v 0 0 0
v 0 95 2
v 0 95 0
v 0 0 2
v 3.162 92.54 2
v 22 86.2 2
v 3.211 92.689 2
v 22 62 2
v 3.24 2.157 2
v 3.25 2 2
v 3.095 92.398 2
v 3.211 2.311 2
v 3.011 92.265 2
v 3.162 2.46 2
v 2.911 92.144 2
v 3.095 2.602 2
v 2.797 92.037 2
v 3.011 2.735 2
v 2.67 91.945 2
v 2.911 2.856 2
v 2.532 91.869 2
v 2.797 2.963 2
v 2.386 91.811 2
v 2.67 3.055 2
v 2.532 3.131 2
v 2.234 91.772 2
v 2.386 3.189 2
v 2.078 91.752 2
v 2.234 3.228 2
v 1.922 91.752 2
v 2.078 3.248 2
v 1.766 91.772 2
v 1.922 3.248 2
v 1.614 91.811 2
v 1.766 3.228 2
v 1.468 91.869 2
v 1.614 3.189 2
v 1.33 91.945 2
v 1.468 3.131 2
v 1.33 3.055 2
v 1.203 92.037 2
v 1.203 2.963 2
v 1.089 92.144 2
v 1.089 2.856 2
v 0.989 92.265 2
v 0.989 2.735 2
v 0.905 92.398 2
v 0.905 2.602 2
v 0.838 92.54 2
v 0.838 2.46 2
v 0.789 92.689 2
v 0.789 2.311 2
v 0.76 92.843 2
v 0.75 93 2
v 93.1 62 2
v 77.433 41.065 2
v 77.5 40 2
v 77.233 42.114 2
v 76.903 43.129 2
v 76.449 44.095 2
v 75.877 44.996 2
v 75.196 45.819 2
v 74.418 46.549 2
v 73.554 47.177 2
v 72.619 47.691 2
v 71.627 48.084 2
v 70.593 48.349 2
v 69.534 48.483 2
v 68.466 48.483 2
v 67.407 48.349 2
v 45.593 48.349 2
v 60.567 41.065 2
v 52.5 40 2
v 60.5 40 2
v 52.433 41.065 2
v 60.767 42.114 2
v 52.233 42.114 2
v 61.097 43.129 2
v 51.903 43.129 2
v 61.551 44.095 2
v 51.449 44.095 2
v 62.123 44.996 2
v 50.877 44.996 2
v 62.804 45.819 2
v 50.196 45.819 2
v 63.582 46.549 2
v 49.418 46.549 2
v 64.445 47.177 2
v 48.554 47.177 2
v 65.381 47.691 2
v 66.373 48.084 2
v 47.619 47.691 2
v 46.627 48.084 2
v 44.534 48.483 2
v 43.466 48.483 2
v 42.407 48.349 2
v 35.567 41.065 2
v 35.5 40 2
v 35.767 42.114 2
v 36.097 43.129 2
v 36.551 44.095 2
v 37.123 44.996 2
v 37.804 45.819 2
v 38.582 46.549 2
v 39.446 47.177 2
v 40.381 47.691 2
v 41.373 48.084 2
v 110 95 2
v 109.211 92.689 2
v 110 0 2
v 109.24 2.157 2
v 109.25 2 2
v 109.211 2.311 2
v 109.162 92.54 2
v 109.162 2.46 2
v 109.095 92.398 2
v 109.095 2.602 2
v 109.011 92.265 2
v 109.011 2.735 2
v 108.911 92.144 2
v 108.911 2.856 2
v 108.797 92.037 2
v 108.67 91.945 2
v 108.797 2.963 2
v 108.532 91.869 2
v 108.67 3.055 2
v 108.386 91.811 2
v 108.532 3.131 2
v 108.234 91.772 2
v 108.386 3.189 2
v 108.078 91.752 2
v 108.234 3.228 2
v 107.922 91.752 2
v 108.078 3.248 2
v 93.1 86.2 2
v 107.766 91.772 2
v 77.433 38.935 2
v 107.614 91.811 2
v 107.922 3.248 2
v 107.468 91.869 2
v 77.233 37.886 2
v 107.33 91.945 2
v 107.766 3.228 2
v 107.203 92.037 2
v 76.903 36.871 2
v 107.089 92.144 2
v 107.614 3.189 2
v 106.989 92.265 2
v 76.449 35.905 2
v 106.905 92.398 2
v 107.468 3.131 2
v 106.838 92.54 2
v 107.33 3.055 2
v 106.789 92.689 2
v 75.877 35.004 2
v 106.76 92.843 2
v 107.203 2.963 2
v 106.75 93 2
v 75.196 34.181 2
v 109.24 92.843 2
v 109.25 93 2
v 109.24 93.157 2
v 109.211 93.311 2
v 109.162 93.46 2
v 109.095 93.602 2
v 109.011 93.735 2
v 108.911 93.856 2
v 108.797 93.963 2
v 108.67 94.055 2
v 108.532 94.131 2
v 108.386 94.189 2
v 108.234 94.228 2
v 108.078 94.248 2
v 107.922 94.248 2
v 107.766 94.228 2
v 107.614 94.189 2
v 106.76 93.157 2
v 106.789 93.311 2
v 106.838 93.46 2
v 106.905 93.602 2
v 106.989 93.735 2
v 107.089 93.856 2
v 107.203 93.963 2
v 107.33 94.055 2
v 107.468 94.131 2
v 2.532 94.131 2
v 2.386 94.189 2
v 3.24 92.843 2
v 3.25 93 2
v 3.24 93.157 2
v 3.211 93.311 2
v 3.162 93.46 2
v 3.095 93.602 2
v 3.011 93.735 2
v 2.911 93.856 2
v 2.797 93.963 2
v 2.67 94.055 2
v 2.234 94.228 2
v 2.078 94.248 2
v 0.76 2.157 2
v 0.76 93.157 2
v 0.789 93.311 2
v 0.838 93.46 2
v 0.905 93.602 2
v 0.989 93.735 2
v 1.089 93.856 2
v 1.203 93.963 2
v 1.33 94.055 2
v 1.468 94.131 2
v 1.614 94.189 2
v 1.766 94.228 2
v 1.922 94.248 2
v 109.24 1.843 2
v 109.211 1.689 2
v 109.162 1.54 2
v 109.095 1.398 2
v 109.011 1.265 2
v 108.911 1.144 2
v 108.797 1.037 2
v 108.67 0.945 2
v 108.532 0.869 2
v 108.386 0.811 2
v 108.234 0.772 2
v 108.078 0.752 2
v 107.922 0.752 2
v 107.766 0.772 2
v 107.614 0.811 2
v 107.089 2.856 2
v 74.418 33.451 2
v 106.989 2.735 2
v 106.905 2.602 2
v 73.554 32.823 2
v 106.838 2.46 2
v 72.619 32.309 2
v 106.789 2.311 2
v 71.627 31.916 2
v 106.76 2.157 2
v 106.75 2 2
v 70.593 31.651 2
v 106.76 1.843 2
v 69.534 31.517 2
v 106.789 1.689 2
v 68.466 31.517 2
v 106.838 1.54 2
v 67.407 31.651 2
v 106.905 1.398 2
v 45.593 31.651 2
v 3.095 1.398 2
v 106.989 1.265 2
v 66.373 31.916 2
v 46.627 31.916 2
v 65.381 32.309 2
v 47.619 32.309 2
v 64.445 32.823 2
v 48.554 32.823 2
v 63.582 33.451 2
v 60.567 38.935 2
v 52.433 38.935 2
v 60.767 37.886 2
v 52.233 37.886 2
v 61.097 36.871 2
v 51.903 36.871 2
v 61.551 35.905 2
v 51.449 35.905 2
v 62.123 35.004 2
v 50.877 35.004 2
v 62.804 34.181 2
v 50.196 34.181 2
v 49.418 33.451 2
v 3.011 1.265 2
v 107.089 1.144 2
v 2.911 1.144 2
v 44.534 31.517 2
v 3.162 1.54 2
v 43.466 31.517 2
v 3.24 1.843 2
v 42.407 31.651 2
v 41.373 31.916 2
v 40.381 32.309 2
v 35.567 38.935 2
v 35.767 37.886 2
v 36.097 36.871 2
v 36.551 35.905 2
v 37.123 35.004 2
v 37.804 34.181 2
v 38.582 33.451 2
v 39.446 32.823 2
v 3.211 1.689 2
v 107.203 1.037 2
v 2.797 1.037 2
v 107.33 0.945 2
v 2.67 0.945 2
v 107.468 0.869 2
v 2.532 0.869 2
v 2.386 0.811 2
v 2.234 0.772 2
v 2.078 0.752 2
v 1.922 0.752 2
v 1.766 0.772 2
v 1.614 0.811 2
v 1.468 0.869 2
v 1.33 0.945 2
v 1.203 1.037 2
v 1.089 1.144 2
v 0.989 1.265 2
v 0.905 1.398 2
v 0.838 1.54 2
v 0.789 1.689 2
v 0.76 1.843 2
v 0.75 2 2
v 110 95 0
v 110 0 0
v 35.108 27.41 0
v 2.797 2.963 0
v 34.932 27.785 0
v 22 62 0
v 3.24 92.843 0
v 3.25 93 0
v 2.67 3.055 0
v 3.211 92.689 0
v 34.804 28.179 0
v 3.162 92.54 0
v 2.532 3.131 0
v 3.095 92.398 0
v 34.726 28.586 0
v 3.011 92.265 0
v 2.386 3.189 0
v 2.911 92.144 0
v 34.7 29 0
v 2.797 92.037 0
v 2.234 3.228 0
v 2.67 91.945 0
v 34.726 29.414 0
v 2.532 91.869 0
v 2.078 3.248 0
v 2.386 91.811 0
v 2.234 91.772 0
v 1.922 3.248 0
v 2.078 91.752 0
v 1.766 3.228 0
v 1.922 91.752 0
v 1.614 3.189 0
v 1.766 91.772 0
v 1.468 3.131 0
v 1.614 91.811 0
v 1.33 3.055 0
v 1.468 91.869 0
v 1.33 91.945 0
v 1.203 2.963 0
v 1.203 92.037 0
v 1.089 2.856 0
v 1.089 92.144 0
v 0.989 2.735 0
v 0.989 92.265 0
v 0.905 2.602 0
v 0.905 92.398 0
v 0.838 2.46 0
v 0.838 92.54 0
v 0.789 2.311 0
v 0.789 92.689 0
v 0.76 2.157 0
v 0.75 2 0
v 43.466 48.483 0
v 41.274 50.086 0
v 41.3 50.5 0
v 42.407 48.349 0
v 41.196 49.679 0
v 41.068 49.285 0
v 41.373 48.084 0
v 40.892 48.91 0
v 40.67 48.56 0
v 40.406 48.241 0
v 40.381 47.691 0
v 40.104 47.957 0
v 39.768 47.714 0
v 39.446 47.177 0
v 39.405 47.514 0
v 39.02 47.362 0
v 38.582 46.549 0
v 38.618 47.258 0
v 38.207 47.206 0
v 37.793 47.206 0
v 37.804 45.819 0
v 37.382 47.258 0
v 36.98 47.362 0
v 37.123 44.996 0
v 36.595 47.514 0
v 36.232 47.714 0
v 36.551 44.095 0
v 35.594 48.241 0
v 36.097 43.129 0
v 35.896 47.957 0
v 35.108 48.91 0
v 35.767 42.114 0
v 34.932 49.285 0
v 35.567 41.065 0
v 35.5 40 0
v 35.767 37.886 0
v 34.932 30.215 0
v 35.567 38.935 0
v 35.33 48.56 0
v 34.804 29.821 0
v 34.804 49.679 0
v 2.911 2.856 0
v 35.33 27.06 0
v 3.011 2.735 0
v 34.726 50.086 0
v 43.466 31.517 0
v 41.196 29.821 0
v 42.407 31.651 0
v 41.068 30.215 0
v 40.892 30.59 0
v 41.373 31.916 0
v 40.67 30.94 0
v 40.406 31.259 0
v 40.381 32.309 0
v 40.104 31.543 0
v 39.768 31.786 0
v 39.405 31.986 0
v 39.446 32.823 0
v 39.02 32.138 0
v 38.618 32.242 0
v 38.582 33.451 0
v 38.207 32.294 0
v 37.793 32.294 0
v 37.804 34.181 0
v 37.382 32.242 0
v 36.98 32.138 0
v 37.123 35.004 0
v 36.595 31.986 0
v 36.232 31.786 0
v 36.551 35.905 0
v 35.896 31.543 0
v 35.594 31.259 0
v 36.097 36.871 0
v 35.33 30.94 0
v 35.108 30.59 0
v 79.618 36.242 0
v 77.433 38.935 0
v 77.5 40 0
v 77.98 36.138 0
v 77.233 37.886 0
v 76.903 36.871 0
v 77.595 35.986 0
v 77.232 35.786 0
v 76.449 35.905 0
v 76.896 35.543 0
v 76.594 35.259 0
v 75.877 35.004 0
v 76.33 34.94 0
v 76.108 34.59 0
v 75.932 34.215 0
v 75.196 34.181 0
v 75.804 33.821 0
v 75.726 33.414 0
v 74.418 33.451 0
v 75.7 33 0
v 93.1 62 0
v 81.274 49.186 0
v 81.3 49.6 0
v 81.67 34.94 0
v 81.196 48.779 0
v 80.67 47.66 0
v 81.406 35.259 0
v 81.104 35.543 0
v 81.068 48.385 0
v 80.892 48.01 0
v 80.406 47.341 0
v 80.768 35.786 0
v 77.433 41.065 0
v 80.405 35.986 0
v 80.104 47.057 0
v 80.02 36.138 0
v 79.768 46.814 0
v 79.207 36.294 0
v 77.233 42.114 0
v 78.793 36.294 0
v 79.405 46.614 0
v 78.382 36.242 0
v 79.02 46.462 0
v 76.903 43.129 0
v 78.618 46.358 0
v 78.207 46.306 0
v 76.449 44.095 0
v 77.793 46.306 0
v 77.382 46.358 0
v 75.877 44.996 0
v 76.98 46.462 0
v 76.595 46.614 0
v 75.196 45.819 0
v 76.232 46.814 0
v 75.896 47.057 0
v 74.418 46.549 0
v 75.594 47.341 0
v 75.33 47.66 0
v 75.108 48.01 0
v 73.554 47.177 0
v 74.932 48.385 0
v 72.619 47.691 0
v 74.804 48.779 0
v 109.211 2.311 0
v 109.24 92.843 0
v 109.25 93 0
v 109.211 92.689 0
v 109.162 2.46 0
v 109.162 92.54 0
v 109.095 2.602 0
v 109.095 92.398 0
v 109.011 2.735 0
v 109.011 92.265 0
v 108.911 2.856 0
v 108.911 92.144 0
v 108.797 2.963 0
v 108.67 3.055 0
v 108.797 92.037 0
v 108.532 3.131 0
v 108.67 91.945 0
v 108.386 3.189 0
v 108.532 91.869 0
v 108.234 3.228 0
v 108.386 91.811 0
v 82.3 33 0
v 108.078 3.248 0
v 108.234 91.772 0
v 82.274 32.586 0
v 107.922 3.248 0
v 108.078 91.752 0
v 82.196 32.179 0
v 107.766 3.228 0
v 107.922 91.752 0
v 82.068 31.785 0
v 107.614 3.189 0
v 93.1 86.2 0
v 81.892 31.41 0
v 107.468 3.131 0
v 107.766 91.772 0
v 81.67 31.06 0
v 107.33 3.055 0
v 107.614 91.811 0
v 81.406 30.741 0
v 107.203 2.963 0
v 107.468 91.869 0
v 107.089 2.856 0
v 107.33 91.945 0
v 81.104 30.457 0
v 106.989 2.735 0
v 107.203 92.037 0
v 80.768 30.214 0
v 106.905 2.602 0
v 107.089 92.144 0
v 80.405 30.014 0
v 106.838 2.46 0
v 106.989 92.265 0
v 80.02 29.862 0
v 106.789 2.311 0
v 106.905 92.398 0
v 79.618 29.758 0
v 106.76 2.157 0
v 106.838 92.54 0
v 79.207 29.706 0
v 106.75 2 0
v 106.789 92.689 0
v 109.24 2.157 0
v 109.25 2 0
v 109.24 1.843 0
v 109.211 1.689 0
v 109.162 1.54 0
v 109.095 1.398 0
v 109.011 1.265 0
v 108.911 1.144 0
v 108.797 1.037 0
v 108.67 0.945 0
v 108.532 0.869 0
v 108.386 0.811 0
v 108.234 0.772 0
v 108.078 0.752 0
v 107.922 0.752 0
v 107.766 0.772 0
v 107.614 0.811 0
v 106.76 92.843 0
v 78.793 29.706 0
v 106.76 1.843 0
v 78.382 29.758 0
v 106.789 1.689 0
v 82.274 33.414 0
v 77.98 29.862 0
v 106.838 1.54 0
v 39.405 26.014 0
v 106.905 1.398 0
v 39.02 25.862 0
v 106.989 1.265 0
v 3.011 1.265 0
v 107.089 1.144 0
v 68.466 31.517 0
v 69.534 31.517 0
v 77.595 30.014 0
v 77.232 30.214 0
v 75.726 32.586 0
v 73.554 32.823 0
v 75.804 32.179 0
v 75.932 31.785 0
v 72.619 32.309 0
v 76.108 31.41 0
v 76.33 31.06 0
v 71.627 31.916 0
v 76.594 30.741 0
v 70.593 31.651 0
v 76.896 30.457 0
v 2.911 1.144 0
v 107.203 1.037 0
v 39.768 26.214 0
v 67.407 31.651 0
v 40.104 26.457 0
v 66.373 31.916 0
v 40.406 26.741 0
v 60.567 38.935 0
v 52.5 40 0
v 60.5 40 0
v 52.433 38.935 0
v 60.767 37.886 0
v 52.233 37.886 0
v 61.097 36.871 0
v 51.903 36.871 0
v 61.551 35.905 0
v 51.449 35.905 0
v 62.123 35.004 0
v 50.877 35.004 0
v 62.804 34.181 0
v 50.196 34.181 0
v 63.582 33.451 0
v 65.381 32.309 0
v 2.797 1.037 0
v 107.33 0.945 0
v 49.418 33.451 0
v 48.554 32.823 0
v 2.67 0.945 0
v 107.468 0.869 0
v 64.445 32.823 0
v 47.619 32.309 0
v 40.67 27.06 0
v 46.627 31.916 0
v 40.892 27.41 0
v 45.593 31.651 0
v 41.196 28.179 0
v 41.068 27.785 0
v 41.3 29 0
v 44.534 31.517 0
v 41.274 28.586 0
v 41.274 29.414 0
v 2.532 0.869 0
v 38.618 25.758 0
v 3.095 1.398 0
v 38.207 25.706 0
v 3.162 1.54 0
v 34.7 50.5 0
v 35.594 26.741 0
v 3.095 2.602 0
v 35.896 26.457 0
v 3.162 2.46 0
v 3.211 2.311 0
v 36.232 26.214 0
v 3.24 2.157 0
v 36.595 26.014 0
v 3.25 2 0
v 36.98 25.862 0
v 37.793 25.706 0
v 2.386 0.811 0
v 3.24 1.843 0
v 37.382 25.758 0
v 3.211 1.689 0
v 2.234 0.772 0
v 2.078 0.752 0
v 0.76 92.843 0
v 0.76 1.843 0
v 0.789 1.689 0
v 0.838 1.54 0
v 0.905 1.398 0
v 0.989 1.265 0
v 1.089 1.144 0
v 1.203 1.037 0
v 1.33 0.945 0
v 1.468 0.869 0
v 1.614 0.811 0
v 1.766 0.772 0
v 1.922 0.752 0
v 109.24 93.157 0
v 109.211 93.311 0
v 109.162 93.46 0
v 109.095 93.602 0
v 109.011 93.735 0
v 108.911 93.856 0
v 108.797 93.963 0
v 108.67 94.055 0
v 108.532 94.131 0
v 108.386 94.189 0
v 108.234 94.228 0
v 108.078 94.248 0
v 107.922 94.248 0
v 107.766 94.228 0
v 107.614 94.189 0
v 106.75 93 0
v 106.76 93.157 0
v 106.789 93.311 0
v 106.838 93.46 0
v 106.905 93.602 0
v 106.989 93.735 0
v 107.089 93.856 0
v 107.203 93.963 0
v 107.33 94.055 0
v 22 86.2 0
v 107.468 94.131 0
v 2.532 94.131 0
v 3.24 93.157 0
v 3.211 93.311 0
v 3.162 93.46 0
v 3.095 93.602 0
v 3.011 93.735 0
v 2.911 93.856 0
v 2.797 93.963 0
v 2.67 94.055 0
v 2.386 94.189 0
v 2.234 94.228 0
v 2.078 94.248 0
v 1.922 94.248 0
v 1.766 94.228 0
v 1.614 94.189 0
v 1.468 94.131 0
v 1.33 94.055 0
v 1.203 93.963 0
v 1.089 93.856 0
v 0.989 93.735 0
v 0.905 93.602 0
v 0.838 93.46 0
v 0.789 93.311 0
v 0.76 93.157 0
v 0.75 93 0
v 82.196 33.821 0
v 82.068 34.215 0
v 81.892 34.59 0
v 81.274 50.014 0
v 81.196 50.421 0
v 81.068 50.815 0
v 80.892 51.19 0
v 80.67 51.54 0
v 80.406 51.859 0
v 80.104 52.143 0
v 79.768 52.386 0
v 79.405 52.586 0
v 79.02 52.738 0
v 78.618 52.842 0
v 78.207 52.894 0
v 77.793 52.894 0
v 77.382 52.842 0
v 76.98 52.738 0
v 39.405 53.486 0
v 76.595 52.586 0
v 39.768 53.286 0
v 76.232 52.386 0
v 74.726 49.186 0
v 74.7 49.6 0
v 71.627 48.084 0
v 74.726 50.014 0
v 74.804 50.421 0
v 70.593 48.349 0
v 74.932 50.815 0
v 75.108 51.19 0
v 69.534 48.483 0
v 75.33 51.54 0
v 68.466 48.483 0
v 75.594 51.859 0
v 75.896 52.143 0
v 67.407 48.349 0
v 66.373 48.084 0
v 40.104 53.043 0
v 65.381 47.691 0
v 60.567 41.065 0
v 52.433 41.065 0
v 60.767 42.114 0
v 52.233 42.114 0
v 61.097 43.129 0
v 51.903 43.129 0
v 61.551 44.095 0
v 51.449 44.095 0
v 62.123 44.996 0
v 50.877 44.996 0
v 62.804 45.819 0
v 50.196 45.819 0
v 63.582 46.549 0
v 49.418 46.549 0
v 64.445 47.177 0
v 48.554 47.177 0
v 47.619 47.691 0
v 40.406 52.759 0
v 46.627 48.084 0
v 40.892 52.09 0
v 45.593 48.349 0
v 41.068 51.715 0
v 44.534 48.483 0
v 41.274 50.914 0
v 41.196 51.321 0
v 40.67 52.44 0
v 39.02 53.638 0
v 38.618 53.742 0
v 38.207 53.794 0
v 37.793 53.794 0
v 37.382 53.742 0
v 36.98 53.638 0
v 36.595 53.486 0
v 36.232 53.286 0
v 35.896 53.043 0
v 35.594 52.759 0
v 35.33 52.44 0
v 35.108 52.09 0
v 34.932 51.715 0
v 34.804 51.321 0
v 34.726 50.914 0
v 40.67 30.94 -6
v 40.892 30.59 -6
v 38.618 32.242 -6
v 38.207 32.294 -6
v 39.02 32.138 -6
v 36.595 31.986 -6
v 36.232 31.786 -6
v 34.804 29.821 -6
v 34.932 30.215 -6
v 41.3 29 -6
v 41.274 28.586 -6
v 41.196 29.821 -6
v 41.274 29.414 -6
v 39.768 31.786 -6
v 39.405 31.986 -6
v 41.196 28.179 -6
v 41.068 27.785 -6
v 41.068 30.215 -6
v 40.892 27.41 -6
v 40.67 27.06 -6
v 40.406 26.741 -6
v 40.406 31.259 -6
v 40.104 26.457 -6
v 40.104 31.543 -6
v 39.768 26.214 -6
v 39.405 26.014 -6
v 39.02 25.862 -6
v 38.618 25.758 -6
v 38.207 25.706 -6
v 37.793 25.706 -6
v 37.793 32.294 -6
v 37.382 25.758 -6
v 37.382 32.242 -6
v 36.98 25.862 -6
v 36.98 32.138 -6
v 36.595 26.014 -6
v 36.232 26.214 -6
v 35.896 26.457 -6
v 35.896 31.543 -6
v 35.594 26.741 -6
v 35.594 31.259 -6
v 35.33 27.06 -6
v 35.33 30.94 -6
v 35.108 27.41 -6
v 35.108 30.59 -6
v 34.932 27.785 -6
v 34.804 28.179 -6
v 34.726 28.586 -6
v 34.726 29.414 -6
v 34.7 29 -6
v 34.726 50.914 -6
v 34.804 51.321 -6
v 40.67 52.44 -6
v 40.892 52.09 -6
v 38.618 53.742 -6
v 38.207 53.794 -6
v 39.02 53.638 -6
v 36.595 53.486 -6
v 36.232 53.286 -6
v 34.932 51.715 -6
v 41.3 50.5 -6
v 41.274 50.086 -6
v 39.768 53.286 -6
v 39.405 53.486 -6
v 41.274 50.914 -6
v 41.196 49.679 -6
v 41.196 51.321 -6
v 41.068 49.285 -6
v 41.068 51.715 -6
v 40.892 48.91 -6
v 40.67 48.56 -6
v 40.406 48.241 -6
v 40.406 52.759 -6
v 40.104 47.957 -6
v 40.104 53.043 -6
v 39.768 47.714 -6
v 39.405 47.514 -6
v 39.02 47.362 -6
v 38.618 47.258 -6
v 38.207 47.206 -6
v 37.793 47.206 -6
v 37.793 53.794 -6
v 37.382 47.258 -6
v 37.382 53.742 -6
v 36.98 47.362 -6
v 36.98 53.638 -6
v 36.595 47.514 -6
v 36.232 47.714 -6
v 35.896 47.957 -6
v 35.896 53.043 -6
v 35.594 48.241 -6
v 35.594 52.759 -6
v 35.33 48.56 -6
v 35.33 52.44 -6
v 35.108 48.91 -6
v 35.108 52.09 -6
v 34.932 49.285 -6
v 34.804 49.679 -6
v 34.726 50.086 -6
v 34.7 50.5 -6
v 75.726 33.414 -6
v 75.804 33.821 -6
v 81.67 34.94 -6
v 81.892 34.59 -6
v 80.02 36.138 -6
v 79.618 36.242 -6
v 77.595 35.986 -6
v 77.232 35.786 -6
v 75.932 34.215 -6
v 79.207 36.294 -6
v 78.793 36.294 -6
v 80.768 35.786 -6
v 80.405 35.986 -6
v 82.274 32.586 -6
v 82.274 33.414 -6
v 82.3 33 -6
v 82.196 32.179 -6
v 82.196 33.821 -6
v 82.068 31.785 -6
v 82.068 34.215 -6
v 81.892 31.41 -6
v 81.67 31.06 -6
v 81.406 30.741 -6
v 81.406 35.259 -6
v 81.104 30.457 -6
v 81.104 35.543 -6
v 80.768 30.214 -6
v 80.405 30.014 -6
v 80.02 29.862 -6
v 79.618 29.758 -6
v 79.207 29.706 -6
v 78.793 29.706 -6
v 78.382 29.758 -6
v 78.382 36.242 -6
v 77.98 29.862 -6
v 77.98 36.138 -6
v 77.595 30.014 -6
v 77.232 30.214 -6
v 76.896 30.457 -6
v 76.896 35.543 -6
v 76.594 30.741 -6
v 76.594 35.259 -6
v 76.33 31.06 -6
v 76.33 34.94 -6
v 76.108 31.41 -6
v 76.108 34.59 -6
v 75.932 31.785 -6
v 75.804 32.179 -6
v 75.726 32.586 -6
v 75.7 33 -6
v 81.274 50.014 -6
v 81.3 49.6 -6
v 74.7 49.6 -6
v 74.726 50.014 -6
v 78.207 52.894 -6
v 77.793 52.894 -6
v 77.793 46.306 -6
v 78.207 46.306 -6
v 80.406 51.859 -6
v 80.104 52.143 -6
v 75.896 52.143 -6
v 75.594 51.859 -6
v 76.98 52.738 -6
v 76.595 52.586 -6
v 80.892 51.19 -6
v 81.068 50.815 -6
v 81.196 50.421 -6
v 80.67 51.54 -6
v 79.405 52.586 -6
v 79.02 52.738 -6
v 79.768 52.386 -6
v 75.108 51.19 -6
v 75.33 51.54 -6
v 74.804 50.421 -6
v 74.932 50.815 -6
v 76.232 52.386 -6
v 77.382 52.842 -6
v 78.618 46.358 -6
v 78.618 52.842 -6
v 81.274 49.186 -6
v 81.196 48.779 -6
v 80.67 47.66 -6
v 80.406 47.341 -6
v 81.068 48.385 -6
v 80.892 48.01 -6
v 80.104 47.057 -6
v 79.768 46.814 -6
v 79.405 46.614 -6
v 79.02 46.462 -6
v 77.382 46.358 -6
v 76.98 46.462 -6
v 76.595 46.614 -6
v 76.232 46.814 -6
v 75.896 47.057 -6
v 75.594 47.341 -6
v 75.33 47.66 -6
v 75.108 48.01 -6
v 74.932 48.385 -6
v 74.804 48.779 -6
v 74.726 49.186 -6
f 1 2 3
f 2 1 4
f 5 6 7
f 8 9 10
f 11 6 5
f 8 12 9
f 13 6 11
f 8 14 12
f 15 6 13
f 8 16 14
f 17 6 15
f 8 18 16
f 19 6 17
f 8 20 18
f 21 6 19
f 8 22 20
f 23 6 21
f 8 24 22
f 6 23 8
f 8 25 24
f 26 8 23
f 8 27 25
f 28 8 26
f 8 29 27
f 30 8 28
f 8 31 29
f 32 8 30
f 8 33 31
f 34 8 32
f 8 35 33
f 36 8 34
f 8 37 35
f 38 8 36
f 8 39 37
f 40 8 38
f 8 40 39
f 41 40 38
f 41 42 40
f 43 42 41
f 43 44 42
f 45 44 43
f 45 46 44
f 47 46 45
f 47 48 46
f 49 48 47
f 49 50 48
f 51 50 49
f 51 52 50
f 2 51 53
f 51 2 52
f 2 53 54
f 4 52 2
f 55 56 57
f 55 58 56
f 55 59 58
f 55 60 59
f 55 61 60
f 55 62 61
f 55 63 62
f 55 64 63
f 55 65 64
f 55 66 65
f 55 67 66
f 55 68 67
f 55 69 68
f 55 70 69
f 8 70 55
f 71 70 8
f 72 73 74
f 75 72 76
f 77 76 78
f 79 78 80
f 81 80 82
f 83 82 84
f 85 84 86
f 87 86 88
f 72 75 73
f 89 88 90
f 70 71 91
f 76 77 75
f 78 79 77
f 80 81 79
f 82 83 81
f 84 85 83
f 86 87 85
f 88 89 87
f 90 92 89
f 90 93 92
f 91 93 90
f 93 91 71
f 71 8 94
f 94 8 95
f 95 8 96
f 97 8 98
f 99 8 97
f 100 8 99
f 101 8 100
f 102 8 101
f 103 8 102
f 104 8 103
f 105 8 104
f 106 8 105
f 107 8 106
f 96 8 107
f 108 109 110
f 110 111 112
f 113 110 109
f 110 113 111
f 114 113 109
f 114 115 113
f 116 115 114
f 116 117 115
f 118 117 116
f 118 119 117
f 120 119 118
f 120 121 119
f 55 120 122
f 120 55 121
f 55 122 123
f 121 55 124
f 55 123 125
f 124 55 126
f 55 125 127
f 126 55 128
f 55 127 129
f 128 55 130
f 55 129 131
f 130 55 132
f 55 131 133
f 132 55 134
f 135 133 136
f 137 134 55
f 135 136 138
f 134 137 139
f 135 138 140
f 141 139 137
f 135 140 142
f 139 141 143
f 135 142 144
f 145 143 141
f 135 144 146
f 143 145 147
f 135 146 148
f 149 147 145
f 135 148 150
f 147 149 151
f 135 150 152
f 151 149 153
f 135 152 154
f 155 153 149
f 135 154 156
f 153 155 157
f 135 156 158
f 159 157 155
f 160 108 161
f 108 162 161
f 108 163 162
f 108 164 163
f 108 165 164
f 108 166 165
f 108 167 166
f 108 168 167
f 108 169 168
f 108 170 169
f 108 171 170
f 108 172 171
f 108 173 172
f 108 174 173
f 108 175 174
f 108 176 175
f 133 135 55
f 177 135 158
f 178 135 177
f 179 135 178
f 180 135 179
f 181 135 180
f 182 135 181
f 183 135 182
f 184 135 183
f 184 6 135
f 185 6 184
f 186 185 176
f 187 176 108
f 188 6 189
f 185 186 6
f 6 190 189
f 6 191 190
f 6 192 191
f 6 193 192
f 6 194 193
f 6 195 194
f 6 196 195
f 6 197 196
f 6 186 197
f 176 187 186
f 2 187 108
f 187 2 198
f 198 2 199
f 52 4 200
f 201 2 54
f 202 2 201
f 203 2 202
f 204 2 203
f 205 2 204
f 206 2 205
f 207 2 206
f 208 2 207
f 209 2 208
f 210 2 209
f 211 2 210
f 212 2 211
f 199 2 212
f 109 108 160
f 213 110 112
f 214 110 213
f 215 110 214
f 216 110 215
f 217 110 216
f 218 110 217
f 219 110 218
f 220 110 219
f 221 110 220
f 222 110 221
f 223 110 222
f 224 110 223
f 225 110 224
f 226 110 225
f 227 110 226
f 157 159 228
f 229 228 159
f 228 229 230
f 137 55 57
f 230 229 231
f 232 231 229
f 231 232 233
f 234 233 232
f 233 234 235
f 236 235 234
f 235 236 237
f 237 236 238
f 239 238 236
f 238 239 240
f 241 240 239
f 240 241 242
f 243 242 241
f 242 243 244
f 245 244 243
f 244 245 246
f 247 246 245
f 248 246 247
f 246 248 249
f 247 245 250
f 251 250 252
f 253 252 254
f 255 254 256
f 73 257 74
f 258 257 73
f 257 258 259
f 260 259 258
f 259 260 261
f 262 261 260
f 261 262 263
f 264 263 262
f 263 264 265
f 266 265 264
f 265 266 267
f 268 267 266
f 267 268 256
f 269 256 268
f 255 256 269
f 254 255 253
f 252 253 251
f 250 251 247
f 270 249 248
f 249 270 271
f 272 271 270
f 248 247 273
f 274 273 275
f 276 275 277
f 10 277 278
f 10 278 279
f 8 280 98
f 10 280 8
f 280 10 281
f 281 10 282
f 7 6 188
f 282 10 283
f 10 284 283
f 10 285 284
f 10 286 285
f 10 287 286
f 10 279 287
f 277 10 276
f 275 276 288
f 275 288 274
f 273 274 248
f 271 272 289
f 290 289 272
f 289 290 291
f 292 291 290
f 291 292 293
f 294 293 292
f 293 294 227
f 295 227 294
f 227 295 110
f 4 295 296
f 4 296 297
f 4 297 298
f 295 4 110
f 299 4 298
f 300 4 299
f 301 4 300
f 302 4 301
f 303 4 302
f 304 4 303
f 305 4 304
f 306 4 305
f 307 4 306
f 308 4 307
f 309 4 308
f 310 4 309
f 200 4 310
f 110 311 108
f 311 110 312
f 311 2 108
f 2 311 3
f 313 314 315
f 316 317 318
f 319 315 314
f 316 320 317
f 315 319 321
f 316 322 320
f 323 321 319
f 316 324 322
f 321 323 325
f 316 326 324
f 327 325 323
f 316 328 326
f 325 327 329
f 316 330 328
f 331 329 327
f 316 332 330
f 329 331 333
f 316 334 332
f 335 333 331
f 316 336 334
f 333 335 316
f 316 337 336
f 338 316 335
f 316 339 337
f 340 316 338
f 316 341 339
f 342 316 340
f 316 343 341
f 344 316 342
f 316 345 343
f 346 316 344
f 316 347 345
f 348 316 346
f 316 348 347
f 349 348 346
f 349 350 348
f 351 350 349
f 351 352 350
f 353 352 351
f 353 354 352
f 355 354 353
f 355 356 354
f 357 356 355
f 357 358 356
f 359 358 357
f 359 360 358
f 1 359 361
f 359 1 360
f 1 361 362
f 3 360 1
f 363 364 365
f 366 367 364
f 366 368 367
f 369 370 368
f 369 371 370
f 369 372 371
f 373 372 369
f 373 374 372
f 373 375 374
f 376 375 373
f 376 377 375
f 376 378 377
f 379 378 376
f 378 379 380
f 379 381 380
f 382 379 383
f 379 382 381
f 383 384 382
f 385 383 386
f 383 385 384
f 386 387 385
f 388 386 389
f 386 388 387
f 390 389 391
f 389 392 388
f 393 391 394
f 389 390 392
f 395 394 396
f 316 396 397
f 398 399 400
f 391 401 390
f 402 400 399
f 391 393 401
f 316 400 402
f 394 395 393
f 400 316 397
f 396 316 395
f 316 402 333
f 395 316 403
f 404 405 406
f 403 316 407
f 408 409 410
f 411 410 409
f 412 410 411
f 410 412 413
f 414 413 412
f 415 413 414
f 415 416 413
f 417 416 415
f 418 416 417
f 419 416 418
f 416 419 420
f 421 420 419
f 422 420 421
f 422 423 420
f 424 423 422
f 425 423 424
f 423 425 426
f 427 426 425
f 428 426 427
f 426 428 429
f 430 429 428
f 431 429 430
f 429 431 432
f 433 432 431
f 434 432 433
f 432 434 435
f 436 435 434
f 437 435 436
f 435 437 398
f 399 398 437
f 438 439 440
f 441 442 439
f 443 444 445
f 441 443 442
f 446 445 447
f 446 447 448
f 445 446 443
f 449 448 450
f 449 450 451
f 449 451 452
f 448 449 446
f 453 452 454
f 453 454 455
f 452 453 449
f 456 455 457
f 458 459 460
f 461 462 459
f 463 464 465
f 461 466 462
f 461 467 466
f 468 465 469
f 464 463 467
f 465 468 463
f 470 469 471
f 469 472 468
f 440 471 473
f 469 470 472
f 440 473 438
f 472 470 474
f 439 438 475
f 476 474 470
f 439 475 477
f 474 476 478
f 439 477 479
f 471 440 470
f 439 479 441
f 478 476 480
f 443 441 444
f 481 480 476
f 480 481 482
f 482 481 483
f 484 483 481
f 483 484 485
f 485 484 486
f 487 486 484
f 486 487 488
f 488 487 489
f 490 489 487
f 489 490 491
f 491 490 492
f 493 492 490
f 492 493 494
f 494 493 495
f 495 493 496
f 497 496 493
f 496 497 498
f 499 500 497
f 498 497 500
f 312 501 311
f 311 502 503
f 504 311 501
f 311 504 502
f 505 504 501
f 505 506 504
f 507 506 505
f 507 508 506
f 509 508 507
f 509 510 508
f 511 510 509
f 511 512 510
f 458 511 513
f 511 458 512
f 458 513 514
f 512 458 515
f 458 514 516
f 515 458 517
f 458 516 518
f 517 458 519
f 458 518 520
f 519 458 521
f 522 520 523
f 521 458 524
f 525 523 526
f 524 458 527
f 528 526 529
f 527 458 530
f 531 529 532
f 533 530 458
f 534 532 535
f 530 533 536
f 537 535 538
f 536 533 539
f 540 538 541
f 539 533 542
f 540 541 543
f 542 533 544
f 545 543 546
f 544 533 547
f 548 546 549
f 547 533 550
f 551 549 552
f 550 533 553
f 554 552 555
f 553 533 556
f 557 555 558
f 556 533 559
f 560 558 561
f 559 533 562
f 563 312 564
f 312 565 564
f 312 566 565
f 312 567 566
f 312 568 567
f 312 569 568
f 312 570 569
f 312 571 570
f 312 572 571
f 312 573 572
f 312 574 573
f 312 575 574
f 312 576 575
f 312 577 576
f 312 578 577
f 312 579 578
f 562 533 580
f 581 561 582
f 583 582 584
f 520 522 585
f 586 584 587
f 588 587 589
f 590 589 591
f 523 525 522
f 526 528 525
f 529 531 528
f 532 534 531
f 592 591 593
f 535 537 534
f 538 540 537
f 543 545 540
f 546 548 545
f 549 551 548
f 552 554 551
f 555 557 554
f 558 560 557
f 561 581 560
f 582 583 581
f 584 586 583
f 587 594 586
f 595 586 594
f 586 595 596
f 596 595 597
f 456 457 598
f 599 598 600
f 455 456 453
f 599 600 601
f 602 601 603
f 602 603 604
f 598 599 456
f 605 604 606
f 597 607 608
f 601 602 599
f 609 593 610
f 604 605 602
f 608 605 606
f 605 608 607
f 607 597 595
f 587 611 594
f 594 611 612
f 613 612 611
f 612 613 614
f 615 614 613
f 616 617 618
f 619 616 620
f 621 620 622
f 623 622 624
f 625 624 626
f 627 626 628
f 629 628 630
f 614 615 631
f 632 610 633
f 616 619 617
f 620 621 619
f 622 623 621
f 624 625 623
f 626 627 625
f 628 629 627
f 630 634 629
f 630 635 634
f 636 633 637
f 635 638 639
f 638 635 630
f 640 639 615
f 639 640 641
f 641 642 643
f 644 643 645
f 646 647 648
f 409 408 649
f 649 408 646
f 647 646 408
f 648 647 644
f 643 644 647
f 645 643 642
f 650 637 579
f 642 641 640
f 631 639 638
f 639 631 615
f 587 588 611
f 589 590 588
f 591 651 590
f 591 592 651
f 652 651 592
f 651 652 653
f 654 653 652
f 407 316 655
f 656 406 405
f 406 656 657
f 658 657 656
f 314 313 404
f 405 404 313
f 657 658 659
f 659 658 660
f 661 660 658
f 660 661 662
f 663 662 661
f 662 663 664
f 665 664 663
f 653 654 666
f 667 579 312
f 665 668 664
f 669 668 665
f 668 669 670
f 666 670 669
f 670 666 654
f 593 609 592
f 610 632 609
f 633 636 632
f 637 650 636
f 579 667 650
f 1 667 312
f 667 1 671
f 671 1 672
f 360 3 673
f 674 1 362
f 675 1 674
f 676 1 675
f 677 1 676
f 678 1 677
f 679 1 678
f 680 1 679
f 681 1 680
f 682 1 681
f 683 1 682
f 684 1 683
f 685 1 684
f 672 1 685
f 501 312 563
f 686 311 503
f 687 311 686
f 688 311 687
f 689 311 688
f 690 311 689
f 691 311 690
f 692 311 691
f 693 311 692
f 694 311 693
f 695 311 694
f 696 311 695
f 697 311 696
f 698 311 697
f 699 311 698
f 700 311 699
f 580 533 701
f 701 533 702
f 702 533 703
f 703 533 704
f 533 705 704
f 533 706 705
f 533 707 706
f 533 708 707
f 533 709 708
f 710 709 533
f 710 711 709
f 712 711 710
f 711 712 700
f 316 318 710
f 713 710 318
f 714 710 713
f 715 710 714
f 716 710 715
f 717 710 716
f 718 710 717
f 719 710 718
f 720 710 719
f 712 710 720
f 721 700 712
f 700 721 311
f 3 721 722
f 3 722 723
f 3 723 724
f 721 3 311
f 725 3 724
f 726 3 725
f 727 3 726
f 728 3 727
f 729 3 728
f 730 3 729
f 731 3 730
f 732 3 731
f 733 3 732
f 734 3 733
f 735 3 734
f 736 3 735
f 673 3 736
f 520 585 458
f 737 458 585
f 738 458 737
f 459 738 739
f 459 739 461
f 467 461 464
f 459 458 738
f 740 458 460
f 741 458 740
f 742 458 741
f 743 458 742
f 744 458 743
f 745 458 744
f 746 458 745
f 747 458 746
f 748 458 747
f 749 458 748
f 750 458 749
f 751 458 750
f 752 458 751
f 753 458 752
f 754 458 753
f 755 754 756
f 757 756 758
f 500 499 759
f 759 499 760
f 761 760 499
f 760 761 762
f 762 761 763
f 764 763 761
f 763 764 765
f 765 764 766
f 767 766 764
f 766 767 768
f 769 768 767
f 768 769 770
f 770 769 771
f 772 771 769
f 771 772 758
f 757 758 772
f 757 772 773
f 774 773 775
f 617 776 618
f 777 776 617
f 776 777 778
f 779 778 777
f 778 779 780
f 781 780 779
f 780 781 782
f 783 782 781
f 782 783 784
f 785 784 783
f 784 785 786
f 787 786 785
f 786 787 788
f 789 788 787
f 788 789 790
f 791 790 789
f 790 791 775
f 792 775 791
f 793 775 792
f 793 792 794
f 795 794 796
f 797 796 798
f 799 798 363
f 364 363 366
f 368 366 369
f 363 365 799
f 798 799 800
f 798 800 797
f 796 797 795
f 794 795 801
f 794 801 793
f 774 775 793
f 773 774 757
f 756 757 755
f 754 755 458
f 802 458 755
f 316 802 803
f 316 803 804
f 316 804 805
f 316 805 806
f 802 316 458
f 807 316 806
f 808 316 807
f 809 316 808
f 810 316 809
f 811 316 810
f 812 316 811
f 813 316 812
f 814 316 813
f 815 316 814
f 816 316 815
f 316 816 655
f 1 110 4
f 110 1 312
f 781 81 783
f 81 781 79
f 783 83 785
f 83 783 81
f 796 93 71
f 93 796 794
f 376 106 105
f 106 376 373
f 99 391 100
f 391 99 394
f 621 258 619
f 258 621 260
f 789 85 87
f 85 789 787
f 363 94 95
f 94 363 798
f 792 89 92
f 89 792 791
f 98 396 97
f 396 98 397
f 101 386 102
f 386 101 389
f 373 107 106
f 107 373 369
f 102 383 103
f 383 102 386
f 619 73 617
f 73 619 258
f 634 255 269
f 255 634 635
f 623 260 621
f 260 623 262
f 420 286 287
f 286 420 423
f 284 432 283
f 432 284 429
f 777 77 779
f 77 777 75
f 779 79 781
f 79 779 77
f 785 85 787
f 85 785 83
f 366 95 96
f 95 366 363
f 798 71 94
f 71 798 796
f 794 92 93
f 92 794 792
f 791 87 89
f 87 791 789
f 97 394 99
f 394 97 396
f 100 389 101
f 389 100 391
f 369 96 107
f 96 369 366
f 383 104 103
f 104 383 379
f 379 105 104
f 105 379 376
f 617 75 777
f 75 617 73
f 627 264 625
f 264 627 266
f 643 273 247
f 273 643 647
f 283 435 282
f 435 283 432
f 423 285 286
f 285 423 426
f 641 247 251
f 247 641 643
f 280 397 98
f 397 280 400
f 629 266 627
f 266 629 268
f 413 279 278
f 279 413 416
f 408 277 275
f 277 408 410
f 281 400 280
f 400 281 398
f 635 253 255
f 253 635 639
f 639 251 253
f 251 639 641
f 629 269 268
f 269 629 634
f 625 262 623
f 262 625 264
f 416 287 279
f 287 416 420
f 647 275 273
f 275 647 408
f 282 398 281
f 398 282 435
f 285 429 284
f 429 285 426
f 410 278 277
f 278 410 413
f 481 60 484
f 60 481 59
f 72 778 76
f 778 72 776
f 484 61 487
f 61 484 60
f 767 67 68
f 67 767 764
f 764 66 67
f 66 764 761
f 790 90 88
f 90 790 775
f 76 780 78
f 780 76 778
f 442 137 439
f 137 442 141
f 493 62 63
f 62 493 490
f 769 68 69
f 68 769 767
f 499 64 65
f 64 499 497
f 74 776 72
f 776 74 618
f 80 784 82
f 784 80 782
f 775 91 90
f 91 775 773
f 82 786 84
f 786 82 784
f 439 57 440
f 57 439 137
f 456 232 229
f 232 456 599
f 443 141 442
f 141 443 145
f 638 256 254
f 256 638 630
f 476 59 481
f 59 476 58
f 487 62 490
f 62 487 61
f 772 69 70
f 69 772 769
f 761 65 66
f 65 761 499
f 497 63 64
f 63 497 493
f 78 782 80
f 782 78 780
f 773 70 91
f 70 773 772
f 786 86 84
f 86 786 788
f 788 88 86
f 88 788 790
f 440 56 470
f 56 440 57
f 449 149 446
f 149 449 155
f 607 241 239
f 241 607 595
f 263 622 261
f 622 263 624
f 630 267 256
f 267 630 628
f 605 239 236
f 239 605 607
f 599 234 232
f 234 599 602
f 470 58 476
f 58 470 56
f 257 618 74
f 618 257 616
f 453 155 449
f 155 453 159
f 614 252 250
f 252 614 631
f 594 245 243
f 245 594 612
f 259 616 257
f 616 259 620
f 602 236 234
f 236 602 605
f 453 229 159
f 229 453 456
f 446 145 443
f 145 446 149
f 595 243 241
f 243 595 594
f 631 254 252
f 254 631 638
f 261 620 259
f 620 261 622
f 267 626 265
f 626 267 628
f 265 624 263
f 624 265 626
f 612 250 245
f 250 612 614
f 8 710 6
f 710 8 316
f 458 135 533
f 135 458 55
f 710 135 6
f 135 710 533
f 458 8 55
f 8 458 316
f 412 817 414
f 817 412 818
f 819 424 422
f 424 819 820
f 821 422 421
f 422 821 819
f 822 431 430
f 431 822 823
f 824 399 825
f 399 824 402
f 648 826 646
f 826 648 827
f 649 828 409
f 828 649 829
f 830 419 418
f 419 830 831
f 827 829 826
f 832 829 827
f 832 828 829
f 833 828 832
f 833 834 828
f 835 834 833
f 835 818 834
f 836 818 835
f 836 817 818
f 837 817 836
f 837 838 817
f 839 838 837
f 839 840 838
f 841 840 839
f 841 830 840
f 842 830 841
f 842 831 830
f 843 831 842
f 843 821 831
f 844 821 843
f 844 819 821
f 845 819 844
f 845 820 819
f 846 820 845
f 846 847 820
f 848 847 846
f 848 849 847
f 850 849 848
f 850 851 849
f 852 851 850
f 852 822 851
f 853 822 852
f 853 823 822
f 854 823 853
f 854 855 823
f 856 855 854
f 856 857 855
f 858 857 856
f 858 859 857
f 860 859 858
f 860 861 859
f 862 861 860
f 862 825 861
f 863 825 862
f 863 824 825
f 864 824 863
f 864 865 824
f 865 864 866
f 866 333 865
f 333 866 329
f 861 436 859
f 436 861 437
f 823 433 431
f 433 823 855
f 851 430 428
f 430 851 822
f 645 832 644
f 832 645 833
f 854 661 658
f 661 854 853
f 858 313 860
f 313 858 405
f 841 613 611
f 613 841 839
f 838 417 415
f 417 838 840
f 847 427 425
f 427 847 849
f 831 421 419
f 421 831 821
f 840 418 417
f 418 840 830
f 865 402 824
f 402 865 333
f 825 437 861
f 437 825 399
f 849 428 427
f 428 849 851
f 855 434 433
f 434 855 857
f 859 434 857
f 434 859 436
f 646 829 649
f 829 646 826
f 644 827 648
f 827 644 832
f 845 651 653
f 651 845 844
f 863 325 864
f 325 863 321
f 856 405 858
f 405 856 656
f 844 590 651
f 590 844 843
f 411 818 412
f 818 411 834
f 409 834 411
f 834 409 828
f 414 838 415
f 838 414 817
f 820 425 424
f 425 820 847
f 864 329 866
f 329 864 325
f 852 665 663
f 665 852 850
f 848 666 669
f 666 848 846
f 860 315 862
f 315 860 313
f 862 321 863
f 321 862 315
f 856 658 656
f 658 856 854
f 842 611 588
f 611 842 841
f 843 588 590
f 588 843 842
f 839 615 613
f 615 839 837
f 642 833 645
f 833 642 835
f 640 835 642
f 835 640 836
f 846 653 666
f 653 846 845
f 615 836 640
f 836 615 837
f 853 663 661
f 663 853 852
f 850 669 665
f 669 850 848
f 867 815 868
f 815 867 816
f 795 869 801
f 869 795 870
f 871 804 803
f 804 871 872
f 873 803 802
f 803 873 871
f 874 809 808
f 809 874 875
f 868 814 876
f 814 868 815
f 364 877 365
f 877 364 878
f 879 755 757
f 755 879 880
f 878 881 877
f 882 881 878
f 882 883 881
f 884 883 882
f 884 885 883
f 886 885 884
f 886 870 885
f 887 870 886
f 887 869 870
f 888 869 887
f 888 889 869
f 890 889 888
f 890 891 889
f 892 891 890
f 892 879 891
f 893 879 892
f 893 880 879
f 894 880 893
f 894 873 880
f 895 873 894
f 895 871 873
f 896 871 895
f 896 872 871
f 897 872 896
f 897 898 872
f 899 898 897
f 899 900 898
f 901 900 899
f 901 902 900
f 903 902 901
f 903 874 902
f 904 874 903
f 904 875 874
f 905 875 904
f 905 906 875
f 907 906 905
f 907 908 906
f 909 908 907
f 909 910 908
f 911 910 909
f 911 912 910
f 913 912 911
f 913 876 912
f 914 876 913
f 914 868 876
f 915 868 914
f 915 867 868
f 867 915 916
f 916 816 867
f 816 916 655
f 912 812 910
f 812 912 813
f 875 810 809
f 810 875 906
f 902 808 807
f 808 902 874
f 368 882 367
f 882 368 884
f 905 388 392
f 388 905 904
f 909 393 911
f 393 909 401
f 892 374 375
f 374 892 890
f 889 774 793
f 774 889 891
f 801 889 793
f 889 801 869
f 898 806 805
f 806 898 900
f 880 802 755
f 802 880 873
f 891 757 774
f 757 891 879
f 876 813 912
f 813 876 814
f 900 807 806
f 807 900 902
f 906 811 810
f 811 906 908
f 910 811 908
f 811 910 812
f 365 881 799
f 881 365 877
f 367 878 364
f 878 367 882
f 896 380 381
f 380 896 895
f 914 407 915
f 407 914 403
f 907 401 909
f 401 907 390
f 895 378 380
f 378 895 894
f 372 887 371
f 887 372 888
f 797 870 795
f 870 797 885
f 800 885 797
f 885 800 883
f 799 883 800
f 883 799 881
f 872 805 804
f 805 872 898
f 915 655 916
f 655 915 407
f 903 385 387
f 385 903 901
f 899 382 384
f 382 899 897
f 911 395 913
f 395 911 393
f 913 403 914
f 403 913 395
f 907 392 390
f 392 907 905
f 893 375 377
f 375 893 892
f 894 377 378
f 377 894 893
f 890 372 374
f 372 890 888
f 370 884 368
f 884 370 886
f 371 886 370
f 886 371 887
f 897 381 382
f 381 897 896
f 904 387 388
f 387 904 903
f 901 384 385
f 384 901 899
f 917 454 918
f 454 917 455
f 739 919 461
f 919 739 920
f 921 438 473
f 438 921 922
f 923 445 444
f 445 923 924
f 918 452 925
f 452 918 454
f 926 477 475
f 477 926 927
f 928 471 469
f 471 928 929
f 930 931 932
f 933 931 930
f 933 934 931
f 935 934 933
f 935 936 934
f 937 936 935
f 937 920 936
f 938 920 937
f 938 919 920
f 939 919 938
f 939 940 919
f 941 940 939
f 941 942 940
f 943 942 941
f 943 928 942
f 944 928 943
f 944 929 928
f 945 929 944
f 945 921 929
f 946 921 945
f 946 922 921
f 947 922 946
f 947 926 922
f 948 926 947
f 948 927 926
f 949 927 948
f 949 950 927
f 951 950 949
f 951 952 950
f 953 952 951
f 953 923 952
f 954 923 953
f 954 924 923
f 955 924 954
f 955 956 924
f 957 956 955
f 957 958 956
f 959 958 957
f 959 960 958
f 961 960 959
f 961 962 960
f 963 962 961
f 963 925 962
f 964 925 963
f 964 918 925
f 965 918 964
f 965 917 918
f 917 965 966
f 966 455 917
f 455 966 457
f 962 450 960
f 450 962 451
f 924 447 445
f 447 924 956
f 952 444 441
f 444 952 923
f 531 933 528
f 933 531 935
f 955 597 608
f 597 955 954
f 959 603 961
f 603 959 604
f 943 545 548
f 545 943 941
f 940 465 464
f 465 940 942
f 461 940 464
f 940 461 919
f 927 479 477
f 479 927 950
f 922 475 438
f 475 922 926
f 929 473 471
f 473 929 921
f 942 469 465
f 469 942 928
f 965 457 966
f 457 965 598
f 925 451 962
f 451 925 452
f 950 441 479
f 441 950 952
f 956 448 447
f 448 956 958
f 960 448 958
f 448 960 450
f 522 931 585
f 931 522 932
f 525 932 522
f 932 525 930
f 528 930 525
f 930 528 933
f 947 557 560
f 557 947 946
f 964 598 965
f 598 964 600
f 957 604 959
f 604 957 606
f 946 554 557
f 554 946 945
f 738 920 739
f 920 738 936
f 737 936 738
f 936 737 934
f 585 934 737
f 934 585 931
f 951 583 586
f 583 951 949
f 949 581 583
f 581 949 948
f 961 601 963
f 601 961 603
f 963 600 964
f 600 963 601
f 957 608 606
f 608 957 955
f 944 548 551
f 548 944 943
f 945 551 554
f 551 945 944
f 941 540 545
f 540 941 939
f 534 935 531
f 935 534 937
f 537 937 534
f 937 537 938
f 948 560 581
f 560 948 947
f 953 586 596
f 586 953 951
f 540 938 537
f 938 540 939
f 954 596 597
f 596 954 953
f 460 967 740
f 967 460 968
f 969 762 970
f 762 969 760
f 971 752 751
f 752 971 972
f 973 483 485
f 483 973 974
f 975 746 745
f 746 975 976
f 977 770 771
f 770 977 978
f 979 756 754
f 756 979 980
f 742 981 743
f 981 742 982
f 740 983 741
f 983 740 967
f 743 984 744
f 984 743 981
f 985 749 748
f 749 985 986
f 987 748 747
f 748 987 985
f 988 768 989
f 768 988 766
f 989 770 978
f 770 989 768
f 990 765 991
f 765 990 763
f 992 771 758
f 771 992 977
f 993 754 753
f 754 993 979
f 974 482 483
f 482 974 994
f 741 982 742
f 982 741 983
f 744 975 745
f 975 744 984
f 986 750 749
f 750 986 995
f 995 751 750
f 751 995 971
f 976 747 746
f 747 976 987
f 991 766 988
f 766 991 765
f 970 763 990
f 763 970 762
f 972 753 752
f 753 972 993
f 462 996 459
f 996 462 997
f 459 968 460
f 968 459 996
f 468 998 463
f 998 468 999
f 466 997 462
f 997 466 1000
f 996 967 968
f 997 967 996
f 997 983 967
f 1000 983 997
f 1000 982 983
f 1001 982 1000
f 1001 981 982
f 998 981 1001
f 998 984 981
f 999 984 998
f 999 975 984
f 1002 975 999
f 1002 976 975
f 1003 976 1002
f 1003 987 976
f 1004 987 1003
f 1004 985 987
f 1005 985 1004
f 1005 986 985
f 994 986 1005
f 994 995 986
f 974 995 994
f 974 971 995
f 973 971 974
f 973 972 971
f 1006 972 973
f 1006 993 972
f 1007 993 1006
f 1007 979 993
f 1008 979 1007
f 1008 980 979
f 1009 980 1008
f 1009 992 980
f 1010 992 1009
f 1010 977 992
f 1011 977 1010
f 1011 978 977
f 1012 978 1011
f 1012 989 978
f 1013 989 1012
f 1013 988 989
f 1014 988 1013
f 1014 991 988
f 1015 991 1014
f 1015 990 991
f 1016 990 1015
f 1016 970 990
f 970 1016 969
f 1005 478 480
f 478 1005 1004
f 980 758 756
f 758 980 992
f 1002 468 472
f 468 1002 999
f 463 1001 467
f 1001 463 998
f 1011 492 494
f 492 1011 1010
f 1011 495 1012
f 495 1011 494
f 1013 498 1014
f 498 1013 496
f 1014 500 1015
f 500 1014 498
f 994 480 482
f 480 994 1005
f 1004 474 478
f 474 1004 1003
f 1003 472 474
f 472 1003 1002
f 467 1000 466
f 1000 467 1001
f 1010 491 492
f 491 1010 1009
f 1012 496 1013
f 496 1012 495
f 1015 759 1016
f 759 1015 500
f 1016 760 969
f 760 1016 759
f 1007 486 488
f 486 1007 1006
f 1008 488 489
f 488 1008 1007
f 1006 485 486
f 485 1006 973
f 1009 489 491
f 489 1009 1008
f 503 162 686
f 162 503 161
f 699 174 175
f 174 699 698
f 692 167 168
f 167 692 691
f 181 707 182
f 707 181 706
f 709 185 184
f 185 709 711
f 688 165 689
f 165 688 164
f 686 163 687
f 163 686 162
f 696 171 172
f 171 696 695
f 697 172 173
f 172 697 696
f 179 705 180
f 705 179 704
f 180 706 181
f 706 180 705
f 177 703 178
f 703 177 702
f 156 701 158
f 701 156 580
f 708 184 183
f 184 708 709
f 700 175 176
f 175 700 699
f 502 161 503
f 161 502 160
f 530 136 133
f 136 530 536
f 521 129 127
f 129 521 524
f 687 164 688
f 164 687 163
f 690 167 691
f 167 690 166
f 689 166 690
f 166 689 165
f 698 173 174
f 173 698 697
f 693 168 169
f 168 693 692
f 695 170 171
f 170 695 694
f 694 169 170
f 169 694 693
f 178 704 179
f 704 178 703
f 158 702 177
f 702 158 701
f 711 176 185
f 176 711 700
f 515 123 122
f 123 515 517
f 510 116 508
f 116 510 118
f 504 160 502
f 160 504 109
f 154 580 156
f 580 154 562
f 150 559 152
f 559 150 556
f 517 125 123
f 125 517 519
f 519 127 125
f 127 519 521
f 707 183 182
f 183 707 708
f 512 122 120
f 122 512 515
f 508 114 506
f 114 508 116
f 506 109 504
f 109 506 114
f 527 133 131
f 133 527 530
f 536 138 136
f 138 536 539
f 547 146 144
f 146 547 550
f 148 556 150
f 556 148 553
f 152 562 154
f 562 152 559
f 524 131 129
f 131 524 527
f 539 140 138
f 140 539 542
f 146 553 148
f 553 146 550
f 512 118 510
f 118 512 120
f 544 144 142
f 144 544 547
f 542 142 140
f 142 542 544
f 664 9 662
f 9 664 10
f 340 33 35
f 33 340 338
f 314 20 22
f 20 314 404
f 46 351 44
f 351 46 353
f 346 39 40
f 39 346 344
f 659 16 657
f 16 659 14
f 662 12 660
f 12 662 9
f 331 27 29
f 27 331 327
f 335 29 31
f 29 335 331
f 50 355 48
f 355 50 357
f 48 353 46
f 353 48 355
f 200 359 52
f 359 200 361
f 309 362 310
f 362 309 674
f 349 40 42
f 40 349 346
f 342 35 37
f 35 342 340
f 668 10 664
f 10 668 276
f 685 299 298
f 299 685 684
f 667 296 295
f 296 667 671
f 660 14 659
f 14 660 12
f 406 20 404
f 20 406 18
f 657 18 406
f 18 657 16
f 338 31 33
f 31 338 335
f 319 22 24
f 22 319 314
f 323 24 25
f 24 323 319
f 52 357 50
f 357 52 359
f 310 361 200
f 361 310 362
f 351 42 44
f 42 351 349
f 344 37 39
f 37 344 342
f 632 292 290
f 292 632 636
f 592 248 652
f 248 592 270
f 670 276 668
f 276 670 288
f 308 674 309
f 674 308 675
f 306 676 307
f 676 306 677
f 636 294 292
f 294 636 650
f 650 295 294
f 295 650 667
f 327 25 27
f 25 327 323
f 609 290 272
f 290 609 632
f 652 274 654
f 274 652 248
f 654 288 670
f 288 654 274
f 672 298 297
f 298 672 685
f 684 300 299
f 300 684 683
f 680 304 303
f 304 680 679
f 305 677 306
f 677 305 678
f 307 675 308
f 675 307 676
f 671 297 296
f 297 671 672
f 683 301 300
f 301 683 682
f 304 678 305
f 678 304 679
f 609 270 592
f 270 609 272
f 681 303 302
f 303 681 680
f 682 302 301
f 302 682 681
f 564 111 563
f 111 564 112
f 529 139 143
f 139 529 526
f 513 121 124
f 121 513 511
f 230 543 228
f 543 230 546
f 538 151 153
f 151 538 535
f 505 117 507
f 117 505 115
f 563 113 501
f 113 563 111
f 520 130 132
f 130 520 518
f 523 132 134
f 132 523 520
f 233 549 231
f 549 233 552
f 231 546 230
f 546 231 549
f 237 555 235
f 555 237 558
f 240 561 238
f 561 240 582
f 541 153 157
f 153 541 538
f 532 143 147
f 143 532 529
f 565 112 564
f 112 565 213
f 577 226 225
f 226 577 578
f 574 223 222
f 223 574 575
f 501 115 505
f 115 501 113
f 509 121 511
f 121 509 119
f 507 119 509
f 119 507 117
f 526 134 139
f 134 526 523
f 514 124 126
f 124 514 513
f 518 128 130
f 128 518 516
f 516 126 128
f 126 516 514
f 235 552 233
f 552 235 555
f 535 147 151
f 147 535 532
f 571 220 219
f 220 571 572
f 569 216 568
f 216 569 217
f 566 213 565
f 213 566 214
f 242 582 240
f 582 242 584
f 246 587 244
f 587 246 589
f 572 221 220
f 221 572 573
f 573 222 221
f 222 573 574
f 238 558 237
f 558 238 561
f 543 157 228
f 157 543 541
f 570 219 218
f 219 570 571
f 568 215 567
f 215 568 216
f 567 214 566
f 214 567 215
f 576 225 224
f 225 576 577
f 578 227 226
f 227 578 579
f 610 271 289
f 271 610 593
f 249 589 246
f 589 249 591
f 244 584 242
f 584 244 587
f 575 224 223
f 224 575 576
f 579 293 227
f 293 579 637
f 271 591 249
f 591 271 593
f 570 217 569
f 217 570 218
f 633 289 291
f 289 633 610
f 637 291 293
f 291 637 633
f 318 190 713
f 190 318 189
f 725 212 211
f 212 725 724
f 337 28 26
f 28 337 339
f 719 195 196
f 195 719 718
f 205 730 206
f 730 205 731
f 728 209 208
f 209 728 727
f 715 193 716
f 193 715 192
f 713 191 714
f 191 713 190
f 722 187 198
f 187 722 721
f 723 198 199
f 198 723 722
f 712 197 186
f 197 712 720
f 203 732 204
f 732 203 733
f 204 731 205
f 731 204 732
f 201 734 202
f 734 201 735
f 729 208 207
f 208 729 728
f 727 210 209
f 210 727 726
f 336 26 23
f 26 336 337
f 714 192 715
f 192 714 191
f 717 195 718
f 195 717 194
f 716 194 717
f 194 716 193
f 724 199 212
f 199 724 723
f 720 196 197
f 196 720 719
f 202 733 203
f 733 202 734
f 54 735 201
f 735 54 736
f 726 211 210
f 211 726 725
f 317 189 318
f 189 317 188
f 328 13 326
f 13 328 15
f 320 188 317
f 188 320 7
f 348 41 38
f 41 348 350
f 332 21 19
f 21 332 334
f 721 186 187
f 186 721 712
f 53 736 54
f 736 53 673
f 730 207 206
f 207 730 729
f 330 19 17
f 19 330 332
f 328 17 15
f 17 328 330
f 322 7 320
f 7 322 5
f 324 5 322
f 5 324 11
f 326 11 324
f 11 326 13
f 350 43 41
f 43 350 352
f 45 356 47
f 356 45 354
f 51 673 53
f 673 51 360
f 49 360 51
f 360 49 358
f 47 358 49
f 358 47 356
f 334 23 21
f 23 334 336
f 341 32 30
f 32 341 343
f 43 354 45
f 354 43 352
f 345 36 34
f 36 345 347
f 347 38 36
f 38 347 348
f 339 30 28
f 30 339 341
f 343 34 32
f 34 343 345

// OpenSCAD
// ranger box lib V2
$fn=50;
bw=110;      // box width 
bl=95;      // box length
bh=2;      // box height minimum around 20
pr=4;       // post radius, 3 is ok
phr=1.25;   // post hole radius 1.25 ==> M2.5
bedh=4;
sm=3;       // corner rounding (sphere 2 is OK)
// 
hw=bw/2;
hl=bl/2;

difference() {
  union() {
    difference() {
      cube([bw,bl,bh]);
    
      
        // SR-504 holes
        translate([44,40,0]) cylinder(d=17,h=4);
        translate([69,40,0]) cylinder(d=17,h=4);
        // LCD cutout
        translate([22,62,0]) cube([71.1, 24.2, 4]);
    }
    // Standoffs for LCD 
    translate([38,29,-6]) cylinder(d=6.6,h=6);
    translate([38,50.5,-6]) cylinder(d=6.6,h=6);
    
    translate([79,33,-6]) cylinder(d=6.6,h=6);
    translate([78,49.6,-6]) cylinder(d=6.6,h=6);
  }
  // screw holes
  translate ([bw-2,bl-2]) cylinder(r=phr,h=4);
  translate ([2,2]) cylinder(r=phr,h=4);
  translate ([bw-2,2]) cylinder(r=phr,h=4);
  translate ([2,bl-2]) cylinder(r=phr,h=4);
}
